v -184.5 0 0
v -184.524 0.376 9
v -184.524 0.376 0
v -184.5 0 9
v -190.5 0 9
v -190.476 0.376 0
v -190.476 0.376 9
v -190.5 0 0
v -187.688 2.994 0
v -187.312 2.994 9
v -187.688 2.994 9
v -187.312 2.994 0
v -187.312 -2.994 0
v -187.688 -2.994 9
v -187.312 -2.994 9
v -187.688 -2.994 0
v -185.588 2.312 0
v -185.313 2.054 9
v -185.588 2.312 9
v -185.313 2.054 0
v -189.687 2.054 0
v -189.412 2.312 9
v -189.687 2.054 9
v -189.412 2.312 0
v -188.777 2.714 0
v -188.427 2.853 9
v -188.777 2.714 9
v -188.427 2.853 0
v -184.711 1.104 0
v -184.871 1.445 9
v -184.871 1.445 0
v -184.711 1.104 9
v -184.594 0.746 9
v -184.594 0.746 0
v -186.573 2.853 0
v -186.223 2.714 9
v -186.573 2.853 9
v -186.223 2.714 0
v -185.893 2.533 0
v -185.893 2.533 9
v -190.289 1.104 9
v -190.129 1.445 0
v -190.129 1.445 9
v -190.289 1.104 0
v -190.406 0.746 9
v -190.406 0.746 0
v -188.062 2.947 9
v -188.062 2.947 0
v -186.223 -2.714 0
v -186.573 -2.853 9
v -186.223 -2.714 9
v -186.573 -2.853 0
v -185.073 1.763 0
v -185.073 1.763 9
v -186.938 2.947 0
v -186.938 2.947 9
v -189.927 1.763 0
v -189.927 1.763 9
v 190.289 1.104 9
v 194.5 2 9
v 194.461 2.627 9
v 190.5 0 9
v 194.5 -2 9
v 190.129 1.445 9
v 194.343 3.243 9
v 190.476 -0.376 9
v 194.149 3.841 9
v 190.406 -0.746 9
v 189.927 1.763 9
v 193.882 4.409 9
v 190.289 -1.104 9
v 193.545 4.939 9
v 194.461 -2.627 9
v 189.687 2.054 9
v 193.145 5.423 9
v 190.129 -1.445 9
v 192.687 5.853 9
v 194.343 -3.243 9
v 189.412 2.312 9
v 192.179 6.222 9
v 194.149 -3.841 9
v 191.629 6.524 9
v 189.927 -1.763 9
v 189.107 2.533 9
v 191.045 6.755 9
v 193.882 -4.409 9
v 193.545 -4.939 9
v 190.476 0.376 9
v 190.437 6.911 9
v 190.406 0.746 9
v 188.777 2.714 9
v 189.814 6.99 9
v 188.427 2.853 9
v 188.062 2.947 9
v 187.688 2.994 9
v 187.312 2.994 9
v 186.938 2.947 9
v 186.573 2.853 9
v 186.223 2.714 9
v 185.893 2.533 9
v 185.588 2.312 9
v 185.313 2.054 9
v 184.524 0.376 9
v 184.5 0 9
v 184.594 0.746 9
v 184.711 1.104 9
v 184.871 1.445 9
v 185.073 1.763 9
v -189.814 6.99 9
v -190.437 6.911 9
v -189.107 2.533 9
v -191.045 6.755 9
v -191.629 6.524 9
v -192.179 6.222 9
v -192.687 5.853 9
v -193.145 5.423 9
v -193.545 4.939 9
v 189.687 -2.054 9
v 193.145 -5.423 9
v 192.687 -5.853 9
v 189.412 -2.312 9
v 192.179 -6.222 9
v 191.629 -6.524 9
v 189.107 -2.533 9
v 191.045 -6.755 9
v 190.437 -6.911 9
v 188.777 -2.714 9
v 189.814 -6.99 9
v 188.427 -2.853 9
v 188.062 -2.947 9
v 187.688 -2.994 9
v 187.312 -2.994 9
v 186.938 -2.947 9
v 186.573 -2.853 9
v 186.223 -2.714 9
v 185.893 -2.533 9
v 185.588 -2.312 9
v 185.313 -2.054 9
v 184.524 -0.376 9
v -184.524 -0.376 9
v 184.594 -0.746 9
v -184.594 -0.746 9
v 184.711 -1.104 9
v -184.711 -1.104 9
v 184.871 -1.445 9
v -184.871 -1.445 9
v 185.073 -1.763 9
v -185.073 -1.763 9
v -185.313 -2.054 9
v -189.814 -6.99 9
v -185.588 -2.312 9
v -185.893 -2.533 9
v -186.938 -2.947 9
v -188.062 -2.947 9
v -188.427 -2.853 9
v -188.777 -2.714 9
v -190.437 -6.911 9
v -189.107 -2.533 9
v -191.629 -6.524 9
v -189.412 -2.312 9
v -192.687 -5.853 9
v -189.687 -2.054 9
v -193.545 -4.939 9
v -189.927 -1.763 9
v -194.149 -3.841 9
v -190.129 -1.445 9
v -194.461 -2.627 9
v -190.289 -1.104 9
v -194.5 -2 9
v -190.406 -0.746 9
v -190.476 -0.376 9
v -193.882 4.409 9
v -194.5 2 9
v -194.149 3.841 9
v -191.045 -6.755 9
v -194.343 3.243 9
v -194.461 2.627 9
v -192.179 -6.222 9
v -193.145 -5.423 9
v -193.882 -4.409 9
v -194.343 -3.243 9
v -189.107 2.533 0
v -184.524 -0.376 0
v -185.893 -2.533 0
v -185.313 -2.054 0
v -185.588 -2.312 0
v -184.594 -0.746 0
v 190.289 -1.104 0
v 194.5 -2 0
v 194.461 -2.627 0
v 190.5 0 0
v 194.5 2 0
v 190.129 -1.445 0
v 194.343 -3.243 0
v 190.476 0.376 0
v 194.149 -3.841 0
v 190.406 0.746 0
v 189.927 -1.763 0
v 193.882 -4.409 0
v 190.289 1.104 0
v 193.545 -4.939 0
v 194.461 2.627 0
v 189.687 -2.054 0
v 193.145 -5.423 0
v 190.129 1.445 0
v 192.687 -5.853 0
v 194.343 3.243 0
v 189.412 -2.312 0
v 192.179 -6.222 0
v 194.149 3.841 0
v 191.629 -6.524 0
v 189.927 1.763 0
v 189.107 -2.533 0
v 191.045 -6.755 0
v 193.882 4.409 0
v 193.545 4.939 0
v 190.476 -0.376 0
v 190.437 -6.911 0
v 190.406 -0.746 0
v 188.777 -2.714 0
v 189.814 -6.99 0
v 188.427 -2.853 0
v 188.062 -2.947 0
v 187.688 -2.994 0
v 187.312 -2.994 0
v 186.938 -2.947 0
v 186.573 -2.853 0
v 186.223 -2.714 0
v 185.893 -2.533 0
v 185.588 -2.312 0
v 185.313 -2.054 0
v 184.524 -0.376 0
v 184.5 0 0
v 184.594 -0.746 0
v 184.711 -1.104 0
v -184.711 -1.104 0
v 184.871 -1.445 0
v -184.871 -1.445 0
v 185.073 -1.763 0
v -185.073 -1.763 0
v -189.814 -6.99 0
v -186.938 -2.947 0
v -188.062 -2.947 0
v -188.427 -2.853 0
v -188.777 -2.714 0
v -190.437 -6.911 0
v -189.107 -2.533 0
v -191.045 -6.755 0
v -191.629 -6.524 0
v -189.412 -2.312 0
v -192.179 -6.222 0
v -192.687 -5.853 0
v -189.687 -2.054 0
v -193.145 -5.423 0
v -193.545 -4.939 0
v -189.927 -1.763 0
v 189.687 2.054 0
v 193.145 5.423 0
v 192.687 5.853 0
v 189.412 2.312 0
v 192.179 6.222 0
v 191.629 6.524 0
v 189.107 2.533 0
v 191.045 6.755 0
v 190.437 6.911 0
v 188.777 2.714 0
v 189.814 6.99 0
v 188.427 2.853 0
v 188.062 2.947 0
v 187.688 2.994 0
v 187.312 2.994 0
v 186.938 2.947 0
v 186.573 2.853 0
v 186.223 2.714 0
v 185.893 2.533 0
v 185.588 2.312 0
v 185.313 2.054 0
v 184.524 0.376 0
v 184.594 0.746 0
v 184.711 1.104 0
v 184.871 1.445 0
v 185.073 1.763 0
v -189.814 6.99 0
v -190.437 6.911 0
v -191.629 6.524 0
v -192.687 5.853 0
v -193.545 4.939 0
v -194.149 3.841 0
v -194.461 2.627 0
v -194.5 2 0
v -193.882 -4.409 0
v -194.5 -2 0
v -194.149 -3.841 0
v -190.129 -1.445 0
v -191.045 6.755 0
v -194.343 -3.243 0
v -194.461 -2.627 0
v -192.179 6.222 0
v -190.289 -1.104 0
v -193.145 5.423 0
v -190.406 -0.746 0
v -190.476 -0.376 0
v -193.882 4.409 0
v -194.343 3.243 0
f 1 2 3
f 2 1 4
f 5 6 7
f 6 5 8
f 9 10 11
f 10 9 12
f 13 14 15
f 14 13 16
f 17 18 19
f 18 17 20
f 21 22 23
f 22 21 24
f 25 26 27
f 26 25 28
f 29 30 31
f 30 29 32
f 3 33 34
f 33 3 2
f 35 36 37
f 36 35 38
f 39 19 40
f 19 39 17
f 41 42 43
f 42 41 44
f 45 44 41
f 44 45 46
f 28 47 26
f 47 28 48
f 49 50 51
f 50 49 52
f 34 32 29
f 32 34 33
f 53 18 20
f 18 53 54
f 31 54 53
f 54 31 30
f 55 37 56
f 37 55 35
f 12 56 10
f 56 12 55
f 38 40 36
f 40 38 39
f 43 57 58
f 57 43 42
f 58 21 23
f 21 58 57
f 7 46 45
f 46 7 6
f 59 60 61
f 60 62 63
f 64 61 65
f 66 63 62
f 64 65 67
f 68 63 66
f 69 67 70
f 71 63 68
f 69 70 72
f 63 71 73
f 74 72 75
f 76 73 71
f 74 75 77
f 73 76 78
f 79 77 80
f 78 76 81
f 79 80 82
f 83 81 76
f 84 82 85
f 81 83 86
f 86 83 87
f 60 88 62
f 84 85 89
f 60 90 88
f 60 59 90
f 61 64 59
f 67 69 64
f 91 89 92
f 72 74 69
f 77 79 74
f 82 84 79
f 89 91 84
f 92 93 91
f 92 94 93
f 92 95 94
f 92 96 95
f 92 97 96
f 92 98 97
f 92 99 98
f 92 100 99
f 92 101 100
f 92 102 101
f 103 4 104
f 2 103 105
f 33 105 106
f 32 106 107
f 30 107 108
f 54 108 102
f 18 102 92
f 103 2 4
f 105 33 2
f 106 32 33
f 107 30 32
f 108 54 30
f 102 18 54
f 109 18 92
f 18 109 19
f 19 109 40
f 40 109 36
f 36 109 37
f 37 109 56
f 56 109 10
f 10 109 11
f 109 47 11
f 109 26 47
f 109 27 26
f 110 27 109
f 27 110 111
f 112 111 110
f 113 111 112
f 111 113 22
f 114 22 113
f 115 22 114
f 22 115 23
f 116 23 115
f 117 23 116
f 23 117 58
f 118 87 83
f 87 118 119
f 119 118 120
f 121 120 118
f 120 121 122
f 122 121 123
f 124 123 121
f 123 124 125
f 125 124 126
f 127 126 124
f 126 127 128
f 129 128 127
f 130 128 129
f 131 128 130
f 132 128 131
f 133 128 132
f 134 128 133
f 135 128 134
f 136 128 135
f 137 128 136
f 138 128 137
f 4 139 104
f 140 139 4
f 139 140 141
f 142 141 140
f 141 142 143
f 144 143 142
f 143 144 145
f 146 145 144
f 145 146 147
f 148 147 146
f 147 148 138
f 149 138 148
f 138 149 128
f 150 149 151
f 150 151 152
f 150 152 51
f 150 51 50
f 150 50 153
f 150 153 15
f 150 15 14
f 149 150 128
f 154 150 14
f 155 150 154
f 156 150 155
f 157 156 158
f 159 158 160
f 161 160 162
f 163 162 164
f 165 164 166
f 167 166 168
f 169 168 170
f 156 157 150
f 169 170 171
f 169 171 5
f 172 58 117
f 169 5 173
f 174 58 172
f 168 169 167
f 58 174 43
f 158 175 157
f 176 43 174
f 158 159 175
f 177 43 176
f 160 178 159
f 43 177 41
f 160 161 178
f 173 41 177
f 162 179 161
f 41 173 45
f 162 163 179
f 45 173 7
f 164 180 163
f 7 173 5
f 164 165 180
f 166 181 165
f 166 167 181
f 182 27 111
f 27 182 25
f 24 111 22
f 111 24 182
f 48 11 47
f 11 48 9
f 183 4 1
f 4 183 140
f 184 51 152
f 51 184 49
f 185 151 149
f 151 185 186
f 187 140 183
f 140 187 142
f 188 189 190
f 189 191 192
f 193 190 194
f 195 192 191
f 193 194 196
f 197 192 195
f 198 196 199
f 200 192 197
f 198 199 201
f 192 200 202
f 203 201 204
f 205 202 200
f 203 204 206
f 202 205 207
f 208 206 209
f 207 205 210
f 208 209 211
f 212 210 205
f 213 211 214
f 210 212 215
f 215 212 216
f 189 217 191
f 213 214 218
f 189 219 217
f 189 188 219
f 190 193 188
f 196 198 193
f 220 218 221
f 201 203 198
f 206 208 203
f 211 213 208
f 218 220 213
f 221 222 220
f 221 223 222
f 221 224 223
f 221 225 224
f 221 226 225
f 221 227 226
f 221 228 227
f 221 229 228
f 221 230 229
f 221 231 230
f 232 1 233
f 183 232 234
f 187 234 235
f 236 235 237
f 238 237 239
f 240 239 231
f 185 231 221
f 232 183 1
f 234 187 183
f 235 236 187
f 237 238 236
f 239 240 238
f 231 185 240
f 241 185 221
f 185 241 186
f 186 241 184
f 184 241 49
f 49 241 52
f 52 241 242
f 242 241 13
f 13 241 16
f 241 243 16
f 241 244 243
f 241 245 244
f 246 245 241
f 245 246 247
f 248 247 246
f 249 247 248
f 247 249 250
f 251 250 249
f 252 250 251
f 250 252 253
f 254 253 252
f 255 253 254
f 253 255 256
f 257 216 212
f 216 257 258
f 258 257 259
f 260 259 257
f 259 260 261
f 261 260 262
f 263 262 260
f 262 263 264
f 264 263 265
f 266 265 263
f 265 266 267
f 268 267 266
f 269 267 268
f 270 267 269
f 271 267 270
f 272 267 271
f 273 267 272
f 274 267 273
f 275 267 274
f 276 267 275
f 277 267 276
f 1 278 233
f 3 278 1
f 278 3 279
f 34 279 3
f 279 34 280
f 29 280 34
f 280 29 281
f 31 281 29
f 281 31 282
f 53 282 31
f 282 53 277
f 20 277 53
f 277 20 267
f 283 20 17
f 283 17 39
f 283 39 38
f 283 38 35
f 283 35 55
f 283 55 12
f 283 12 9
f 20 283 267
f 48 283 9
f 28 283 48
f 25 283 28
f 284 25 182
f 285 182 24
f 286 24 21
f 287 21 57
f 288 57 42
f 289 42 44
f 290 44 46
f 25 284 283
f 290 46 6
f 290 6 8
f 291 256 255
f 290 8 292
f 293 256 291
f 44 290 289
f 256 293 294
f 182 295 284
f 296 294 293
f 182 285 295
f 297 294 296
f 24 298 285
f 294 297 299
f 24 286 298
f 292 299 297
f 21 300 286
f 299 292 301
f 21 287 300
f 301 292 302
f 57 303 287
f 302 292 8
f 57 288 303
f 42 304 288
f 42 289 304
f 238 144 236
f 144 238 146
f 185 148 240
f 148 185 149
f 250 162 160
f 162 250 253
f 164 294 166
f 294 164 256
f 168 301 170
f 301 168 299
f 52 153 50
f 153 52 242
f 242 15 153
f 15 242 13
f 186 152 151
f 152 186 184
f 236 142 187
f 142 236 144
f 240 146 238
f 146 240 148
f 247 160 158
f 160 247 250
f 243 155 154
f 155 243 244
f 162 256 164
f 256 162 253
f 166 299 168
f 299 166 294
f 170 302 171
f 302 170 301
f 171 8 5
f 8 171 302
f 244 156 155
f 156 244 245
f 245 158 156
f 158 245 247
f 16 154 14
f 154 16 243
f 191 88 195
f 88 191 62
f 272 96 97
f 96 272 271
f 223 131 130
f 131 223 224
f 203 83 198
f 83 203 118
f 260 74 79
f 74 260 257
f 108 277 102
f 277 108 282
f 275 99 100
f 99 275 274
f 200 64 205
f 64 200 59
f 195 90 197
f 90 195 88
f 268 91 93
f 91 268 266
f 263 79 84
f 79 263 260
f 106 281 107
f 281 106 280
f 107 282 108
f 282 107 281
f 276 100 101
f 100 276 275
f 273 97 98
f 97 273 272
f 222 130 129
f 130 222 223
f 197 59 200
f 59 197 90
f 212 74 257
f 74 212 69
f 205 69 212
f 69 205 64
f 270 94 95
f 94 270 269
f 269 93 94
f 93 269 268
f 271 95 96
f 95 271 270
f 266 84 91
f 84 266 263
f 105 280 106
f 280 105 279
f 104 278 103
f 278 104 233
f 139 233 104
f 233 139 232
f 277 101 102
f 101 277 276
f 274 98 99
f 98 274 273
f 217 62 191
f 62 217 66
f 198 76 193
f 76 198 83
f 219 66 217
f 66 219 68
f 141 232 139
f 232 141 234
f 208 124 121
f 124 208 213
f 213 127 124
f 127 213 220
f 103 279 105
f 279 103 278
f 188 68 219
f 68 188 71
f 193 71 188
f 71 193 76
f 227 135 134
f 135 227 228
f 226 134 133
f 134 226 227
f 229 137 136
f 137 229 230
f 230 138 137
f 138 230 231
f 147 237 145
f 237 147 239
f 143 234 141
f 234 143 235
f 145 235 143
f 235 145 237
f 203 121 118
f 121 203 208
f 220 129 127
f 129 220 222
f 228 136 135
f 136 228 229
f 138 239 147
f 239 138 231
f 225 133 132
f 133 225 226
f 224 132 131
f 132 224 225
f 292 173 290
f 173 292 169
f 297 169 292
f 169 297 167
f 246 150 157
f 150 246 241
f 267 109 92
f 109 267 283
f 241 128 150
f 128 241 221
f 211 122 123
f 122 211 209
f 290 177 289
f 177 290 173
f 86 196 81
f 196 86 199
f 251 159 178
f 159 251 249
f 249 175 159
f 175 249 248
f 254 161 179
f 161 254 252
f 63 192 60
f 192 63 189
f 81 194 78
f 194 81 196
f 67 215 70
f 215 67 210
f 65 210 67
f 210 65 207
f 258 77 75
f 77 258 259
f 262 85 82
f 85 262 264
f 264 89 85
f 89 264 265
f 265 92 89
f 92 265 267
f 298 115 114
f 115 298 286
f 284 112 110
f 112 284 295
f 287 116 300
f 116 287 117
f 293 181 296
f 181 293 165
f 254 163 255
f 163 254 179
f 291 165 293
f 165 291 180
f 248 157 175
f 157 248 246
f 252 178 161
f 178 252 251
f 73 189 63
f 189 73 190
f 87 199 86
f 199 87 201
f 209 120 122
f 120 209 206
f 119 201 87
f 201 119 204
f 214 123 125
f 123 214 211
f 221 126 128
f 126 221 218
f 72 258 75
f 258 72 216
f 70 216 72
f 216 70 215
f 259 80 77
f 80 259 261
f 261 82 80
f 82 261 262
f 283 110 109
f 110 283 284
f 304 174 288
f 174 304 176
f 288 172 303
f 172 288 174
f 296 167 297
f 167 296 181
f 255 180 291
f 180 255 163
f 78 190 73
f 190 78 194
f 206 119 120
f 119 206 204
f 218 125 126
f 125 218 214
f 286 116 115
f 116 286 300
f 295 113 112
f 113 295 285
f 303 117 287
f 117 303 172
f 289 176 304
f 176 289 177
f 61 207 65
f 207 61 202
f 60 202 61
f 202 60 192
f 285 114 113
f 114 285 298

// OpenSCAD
$fn = 50;


difference() {
	union() {
		hull() {
			translate(v = [-189.5000000000, 2.0000000000, 0]) {
				cylinder(h = 9, r = 5);
			}
			translate(v = [189.5000000000, 2.0000000000, 0]) {
				cylinder(h = 9, r = 5);
			}
			translate(v = [-189.5000000000, -2.0000000000, 0]) {
				cylinder(h = 9, r = 5);
			}
			translate(v = [189.5000000000, -2.0000000000, 0]) {
				cylinder(h = 9, r = 5);
			}
		}
	}
	union() {
		translate(v = [-187.5000000000, 0.0000000000, 0]) {
			cylinder(h = 9, r = 3.0000000000);
		}
		translate(v = [187.5000000000, 0.0000000000, 0]) {
			cylinder(h = 9, r = 3.0000000000);
		}
		translate(v = [-187.5000000000, 0.0000000000, 0]) {
			cylinder(h = 9, r = 1.5000000000);
		}
		translate(v = [187.5000000000, 0.0000000000, 0]) {
			cylinder(h = 9, r = 1.5000000000);
		}
		translate(v = [-187.5000000000, 0.0000000000, 0]) {
			cylinder(h = 9, r = 1.5000000000);
		}
		translate(v = [187.5000000000, 0.0000000000, 0]) {
			cylinder(h = 9, r = 1.5000000000);
		}
		translate(v = [-187.5000000000, 0.0000000000, 0]) {
			cylinder(h = 9, r = 1.5000000000);
		}
		translate(v = [187.5000000000, 0.0000000000, 0]) {
			cylinder(h = 9, r = 1.5000000000);
		}
	}
}
